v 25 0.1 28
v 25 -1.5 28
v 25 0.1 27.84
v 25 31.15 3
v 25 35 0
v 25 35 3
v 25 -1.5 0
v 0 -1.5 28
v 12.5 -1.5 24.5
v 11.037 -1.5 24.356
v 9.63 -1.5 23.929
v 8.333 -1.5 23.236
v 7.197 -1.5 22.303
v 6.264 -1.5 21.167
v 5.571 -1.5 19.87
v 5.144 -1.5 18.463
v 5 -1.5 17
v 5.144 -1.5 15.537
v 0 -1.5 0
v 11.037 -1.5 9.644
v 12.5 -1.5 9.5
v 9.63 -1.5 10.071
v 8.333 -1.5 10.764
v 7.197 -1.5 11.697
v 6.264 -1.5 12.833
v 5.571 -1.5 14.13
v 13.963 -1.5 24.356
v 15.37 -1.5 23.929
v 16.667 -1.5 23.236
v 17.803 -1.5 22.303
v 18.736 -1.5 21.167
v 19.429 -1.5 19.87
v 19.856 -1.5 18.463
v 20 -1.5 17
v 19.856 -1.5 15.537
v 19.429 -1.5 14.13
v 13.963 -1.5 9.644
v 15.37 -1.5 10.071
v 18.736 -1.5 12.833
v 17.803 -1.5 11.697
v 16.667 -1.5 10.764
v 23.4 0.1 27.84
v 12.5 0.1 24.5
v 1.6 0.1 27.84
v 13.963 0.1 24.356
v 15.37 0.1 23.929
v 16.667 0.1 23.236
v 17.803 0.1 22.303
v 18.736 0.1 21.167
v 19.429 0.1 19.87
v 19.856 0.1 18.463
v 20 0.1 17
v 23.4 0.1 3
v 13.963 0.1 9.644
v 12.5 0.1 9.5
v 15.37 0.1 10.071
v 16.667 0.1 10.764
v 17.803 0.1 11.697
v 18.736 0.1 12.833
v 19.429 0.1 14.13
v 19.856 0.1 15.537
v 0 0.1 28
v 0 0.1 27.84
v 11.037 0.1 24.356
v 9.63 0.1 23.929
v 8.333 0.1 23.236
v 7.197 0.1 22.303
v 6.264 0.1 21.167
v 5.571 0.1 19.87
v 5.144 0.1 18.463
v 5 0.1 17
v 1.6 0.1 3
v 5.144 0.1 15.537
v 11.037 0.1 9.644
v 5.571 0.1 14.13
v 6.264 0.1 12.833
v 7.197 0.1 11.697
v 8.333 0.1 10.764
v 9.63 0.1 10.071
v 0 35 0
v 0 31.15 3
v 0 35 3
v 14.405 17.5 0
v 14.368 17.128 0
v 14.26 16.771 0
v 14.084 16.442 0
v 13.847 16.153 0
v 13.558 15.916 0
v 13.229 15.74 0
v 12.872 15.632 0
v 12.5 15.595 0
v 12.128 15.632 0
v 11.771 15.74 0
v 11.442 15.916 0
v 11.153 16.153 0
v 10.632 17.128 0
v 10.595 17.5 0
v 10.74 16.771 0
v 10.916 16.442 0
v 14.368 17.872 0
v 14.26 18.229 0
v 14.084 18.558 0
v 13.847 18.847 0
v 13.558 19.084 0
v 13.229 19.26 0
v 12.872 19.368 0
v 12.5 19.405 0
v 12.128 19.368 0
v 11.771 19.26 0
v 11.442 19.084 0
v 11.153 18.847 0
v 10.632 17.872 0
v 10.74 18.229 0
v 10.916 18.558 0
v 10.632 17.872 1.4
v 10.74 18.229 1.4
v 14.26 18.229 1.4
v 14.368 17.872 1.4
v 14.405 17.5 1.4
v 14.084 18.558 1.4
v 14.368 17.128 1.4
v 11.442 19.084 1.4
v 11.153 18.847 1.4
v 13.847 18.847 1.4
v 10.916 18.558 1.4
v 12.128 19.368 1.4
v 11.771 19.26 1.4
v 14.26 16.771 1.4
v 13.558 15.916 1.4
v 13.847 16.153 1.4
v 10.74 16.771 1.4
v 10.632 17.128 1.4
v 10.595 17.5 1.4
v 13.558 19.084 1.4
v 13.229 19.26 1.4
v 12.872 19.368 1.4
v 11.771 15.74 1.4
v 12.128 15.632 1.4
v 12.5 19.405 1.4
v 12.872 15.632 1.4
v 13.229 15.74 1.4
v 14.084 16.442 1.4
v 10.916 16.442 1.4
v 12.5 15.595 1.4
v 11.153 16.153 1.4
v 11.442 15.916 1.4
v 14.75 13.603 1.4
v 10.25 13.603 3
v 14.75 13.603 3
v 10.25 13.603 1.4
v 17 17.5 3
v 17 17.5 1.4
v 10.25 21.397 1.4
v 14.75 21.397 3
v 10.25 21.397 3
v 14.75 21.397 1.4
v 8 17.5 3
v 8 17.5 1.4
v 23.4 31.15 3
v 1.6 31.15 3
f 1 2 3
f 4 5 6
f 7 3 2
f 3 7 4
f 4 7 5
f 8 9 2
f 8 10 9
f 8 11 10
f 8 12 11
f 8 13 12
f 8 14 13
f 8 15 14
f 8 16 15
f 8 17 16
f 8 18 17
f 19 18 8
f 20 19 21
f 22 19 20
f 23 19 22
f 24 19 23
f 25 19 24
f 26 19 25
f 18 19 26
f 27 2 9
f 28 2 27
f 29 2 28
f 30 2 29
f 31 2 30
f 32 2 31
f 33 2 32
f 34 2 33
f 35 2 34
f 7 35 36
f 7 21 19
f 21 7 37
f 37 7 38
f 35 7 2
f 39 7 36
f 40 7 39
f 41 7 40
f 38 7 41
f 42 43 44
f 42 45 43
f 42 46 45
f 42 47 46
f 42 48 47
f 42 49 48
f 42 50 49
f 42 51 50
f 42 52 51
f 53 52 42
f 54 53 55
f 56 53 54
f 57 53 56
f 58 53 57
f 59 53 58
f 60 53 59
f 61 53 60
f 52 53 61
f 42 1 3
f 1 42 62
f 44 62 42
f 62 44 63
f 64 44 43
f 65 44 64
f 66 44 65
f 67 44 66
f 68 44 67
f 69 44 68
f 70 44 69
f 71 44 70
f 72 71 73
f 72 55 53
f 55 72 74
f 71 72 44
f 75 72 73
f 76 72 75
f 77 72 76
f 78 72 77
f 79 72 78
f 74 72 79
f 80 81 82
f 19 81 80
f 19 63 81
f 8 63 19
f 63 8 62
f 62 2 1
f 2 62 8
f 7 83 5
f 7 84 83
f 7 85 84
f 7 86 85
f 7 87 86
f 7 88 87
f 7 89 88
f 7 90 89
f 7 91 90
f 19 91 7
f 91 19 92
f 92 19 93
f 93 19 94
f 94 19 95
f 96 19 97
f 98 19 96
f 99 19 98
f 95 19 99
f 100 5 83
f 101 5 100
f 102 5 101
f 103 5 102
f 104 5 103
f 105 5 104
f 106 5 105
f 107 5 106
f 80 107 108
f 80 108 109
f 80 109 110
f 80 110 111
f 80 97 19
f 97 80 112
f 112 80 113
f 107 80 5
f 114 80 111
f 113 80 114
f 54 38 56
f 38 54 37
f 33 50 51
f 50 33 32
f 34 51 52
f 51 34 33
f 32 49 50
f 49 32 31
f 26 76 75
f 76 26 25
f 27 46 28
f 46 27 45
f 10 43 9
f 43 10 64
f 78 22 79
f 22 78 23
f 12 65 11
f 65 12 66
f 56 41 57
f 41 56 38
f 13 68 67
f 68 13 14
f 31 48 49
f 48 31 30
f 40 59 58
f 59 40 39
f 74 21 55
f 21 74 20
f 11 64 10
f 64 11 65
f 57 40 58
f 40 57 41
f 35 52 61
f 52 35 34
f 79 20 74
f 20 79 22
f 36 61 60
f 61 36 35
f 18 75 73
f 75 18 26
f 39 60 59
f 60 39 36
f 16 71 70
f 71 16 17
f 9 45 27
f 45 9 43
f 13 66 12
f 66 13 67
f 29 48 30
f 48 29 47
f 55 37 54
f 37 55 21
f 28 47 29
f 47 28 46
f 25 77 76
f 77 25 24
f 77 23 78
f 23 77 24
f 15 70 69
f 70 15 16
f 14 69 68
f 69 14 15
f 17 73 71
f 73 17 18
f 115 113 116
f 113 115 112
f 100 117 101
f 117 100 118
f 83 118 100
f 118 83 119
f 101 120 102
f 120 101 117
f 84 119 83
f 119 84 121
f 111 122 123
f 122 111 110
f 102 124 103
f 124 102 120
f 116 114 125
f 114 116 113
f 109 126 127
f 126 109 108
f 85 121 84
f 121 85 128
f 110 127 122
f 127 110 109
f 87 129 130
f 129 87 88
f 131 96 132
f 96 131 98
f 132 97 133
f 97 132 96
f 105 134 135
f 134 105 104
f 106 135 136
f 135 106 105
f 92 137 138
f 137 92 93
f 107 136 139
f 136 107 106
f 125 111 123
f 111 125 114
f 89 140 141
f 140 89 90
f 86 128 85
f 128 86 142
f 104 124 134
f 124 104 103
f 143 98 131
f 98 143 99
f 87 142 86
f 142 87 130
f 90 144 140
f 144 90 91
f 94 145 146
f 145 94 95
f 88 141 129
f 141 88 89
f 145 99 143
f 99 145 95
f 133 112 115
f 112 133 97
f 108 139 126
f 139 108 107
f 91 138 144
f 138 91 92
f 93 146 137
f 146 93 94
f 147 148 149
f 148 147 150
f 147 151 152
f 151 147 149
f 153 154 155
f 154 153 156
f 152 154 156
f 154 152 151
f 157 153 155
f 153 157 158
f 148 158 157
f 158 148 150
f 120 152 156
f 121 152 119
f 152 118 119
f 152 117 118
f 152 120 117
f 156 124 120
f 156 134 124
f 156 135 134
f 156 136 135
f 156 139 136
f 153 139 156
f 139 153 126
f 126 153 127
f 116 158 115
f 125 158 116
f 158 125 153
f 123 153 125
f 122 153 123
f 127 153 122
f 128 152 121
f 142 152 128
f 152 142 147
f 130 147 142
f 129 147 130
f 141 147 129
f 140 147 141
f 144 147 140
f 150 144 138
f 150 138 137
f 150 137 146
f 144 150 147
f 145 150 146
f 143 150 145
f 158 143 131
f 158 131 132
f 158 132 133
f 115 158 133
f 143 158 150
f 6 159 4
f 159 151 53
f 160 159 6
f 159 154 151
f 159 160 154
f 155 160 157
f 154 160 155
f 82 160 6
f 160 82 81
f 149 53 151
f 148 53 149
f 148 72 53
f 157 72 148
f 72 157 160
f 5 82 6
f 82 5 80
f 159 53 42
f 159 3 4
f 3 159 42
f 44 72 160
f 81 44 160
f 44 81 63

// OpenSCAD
//
// bracket for fuse
//

e = 0.1;
$fn = 32;
mm = 25.4;

nsw = 1;			/* number of switches */

mtg_hole = 0.15*mm; 		/* mounting hole (6-32) */
mtg_nut = 9;

hole_dia = 15;			/* switch hole */

f_thk = 1.6;			/* front thick */
b_thk = 3;			/* base thick */
s_thk = 1.6;			/* side thickness */

sw_spc = 25;			/* pitch */


// front panel in x/y
f_wid = sw_spc*nsw;

f_hgt = 25+b_thk;			/* front panel height */
f_hole = 14+b_thk;			/* front panel hole offset from bottom */

module front() {
     difference() {
	  cube( [f_wid, f_hgt, f_thk]);
	  translate( [sw_spc/2, f_hole, -e]) {
	       for( i=[0:nsw-1]) {
		    translate( [i*sw_spc, 0, 0])
			 cylinder( h=f_thk+3*2, d=hole_dia);
	       }
	  }
     }
}

module hex( h, d) {
     $fn = 6;
     cylinder( h=h, d=d);
}

module mtg_hole_at( x, y) {
     translate( [x, y, -e]) {
	  cylinder( h=b_thk+2*e, d=mtg_hole);
	  translate( [0, 0, b_thk/2])
	       hex( b_thk, mtg_nut);
     }
}

// base plate in x/y
base_wid = f_wid;
base_hgt = 35;
module base() {
     difference() {
	  cube( [base_wid, base_hgt, b_thk]);
	  mtg_hole_at( base_wid/2, base_hgt/2);
     }
}


// side bracket
module side() {
     linear_extrude( height=s_thk, convexity=10) {
	  polygon( [[0,0] , [base_hgt, 0], [0, f_hgt] ]);
     }
}


translate( [0, e, 0])  rotate( [90, 0, 0])  front();
base();

translate( [base_wid-s_thk, -e, 0])  rotate( [90, 0, 90])   side();
translate( [0, -e, 0])  rotate( [90, 0, 90])   side();
